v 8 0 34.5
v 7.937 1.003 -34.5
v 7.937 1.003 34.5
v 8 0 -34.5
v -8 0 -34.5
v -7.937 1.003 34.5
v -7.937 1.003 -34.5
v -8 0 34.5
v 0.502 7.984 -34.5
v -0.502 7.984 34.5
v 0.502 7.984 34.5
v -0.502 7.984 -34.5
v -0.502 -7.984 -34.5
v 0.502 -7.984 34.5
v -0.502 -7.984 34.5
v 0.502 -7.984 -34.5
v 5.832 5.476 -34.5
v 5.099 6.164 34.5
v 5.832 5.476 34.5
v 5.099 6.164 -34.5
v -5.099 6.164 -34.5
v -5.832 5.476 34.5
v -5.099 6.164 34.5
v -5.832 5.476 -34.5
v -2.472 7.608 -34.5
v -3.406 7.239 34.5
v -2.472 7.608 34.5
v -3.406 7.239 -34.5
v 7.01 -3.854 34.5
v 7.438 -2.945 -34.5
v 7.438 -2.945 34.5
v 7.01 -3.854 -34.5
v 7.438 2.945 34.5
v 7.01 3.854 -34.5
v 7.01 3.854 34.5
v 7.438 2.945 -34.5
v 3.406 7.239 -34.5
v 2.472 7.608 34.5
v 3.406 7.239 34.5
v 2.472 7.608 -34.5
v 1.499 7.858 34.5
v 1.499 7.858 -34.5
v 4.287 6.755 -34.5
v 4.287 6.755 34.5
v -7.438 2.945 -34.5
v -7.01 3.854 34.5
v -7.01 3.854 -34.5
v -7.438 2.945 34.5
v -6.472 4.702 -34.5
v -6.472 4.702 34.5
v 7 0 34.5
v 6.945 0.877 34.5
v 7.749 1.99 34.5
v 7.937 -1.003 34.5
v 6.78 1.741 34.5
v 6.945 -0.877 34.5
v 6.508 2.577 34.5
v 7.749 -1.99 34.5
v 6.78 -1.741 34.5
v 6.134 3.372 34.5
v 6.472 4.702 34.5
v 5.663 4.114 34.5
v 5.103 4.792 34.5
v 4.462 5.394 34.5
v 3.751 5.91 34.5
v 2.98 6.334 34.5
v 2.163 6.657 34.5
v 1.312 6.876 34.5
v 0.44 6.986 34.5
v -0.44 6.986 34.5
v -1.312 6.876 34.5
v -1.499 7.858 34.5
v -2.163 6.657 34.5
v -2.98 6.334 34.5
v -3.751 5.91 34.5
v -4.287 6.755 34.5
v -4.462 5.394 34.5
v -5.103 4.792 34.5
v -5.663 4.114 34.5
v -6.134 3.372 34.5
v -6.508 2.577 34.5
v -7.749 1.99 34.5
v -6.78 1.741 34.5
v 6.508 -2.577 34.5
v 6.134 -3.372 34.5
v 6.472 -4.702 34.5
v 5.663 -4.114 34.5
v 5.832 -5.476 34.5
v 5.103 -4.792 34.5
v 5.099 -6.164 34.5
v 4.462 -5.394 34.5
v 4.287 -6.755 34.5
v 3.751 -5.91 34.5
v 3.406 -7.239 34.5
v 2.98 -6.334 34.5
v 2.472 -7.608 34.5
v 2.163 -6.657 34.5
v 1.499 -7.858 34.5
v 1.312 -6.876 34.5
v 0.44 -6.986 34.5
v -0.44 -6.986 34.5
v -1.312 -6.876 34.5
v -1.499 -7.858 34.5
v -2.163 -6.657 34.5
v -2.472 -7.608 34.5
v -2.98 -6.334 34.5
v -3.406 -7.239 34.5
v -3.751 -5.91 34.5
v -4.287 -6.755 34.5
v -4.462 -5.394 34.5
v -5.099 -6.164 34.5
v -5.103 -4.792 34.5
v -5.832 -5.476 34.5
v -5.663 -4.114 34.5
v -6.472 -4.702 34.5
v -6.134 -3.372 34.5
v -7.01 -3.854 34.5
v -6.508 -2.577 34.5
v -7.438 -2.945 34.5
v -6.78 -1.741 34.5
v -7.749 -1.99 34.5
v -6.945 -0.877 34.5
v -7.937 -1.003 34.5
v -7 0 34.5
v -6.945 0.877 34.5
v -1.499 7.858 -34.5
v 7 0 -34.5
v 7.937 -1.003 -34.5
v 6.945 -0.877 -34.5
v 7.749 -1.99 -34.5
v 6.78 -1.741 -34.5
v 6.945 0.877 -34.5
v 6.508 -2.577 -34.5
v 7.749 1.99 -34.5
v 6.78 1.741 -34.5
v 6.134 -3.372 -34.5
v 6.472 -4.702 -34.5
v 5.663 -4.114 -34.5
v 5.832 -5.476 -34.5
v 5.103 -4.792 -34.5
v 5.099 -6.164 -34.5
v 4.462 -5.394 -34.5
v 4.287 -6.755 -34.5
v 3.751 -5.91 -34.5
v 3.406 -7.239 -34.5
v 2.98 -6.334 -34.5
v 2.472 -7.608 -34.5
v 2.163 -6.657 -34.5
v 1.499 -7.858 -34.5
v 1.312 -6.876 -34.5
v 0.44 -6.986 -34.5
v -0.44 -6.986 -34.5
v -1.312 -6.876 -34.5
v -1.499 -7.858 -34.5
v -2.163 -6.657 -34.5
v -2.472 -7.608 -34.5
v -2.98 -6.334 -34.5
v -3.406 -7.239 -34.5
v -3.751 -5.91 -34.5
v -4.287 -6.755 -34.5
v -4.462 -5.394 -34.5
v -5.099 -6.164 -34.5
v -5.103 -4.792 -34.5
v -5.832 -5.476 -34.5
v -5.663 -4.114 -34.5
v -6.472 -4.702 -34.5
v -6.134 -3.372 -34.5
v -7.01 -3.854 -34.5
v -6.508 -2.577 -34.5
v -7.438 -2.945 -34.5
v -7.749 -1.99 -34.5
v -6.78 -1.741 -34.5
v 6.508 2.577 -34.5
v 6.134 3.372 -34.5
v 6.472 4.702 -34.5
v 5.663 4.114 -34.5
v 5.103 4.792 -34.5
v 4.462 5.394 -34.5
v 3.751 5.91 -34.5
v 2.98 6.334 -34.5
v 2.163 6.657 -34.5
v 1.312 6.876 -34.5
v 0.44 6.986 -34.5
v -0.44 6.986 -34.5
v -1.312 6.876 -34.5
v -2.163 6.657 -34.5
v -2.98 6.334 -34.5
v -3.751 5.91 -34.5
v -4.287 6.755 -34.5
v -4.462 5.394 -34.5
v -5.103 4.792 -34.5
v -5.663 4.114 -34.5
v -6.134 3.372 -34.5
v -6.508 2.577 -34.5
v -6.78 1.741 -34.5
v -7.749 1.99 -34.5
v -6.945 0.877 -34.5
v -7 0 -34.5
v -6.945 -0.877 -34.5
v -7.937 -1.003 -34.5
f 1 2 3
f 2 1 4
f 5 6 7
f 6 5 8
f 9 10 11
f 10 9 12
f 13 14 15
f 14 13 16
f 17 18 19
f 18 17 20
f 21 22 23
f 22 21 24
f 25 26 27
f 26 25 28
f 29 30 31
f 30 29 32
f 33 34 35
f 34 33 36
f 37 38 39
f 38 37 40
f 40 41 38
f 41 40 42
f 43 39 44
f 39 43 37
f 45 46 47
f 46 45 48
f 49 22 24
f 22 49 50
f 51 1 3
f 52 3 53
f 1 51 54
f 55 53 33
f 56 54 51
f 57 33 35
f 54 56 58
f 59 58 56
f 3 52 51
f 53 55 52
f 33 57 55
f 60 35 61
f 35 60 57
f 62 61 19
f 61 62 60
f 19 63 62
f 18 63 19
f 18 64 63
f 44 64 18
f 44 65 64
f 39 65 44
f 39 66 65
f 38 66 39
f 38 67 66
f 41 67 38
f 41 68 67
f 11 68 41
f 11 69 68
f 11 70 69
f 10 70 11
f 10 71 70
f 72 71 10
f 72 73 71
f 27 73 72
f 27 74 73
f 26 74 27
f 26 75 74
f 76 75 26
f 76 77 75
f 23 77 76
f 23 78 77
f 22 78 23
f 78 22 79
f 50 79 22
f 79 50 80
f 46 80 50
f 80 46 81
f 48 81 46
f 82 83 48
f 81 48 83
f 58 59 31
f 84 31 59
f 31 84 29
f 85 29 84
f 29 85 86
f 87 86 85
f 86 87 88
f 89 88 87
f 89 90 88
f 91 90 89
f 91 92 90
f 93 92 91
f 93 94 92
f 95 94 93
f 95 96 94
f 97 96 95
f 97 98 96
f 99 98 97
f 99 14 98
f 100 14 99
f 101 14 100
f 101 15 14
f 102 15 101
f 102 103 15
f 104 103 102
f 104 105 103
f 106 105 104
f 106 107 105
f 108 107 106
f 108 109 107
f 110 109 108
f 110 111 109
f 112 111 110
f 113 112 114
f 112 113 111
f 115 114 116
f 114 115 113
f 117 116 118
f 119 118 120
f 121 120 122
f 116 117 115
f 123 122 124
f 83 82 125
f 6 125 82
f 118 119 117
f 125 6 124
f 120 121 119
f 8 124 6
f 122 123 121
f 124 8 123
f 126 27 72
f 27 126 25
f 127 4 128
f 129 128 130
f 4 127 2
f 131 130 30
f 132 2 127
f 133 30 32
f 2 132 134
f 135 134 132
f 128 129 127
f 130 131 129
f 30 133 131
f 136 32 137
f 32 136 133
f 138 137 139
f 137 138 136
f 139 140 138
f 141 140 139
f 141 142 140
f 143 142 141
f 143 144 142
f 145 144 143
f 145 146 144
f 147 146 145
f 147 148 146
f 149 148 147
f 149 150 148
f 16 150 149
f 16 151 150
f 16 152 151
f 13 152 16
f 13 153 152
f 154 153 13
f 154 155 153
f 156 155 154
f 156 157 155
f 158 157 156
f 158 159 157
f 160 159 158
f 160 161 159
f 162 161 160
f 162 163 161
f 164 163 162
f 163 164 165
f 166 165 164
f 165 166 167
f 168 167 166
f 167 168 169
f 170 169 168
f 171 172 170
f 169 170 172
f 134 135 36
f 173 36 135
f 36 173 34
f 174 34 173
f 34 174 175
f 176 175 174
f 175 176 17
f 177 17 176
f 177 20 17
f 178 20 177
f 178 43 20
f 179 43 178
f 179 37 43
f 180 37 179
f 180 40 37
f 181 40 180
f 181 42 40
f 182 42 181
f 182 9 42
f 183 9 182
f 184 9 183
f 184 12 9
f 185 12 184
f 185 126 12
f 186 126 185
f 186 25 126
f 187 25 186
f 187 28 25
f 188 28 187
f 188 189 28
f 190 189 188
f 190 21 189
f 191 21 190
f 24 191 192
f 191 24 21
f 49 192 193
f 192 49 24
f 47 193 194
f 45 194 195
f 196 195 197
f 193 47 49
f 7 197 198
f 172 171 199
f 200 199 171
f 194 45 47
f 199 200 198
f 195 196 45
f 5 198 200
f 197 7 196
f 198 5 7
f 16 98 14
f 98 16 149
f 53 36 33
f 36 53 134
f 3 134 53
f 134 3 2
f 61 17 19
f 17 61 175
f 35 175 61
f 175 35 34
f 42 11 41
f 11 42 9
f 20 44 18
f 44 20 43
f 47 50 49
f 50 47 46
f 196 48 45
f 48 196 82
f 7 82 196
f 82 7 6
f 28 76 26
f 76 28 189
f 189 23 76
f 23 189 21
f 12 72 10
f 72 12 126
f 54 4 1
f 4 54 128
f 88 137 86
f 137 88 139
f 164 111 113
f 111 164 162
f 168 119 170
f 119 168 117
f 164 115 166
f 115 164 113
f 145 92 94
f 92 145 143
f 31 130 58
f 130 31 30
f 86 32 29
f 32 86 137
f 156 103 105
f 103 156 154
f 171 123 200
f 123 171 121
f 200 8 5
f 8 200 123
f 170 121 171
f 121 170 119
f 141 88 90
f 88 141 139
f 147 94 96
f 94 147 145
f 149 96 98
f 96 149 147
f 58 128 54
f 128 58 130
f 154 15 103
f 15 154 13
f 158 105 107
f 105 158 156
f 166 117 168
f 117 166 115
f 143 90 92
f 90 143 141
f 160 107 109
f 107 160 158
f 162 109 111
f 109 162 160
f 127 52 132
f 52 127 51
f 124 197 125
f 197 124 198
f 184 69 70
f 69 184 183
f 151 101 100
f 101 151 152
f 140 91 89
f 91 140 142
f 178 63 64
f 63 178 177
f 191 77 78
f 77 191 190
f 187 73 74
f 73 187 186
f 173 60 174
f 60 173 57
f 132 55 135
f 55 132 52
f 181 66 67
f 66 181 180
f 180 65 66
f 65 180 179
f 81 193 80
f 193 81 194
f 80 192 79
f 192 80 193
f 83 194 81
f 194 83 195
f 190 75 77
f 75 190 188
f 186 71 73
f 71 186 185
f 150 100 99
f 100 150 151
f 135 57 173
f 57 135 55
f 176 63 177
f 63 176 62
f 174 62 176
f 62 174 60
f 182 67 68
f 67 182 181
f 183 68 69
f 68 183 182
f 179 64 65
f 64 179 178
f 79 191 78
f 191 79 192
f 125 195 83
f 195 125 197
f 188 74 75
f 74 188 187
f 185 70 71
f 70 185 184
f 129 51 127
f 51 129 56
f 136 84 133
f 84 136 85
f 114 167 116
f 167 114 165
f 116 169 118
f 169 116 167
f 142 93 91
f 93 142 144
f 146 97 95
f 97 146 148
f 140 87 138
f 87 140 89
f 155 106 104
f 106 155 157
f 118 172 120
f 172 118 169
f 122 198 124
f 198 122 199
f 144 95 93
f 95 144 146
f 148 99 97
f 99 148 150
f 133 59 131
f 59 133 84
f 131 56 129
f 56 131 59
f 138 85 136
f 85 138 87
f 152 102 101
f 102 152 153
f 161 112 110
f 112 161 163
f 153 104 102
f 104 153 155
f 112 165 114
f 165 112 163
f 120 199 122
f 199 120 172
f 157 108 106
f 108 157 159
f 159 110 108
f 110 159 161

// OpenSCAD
$fn = 50;


difference() {
	union() {
		translate(v = [0, 0, -34.5000000000]) {
			cylinder(h = 69, r = 8.0000000000);
		}
	}
	union() {
		translate(v = [0, 0, -100.0000000000]) {
			cylinder(h = 200, r = 7);
		}
	}
}
